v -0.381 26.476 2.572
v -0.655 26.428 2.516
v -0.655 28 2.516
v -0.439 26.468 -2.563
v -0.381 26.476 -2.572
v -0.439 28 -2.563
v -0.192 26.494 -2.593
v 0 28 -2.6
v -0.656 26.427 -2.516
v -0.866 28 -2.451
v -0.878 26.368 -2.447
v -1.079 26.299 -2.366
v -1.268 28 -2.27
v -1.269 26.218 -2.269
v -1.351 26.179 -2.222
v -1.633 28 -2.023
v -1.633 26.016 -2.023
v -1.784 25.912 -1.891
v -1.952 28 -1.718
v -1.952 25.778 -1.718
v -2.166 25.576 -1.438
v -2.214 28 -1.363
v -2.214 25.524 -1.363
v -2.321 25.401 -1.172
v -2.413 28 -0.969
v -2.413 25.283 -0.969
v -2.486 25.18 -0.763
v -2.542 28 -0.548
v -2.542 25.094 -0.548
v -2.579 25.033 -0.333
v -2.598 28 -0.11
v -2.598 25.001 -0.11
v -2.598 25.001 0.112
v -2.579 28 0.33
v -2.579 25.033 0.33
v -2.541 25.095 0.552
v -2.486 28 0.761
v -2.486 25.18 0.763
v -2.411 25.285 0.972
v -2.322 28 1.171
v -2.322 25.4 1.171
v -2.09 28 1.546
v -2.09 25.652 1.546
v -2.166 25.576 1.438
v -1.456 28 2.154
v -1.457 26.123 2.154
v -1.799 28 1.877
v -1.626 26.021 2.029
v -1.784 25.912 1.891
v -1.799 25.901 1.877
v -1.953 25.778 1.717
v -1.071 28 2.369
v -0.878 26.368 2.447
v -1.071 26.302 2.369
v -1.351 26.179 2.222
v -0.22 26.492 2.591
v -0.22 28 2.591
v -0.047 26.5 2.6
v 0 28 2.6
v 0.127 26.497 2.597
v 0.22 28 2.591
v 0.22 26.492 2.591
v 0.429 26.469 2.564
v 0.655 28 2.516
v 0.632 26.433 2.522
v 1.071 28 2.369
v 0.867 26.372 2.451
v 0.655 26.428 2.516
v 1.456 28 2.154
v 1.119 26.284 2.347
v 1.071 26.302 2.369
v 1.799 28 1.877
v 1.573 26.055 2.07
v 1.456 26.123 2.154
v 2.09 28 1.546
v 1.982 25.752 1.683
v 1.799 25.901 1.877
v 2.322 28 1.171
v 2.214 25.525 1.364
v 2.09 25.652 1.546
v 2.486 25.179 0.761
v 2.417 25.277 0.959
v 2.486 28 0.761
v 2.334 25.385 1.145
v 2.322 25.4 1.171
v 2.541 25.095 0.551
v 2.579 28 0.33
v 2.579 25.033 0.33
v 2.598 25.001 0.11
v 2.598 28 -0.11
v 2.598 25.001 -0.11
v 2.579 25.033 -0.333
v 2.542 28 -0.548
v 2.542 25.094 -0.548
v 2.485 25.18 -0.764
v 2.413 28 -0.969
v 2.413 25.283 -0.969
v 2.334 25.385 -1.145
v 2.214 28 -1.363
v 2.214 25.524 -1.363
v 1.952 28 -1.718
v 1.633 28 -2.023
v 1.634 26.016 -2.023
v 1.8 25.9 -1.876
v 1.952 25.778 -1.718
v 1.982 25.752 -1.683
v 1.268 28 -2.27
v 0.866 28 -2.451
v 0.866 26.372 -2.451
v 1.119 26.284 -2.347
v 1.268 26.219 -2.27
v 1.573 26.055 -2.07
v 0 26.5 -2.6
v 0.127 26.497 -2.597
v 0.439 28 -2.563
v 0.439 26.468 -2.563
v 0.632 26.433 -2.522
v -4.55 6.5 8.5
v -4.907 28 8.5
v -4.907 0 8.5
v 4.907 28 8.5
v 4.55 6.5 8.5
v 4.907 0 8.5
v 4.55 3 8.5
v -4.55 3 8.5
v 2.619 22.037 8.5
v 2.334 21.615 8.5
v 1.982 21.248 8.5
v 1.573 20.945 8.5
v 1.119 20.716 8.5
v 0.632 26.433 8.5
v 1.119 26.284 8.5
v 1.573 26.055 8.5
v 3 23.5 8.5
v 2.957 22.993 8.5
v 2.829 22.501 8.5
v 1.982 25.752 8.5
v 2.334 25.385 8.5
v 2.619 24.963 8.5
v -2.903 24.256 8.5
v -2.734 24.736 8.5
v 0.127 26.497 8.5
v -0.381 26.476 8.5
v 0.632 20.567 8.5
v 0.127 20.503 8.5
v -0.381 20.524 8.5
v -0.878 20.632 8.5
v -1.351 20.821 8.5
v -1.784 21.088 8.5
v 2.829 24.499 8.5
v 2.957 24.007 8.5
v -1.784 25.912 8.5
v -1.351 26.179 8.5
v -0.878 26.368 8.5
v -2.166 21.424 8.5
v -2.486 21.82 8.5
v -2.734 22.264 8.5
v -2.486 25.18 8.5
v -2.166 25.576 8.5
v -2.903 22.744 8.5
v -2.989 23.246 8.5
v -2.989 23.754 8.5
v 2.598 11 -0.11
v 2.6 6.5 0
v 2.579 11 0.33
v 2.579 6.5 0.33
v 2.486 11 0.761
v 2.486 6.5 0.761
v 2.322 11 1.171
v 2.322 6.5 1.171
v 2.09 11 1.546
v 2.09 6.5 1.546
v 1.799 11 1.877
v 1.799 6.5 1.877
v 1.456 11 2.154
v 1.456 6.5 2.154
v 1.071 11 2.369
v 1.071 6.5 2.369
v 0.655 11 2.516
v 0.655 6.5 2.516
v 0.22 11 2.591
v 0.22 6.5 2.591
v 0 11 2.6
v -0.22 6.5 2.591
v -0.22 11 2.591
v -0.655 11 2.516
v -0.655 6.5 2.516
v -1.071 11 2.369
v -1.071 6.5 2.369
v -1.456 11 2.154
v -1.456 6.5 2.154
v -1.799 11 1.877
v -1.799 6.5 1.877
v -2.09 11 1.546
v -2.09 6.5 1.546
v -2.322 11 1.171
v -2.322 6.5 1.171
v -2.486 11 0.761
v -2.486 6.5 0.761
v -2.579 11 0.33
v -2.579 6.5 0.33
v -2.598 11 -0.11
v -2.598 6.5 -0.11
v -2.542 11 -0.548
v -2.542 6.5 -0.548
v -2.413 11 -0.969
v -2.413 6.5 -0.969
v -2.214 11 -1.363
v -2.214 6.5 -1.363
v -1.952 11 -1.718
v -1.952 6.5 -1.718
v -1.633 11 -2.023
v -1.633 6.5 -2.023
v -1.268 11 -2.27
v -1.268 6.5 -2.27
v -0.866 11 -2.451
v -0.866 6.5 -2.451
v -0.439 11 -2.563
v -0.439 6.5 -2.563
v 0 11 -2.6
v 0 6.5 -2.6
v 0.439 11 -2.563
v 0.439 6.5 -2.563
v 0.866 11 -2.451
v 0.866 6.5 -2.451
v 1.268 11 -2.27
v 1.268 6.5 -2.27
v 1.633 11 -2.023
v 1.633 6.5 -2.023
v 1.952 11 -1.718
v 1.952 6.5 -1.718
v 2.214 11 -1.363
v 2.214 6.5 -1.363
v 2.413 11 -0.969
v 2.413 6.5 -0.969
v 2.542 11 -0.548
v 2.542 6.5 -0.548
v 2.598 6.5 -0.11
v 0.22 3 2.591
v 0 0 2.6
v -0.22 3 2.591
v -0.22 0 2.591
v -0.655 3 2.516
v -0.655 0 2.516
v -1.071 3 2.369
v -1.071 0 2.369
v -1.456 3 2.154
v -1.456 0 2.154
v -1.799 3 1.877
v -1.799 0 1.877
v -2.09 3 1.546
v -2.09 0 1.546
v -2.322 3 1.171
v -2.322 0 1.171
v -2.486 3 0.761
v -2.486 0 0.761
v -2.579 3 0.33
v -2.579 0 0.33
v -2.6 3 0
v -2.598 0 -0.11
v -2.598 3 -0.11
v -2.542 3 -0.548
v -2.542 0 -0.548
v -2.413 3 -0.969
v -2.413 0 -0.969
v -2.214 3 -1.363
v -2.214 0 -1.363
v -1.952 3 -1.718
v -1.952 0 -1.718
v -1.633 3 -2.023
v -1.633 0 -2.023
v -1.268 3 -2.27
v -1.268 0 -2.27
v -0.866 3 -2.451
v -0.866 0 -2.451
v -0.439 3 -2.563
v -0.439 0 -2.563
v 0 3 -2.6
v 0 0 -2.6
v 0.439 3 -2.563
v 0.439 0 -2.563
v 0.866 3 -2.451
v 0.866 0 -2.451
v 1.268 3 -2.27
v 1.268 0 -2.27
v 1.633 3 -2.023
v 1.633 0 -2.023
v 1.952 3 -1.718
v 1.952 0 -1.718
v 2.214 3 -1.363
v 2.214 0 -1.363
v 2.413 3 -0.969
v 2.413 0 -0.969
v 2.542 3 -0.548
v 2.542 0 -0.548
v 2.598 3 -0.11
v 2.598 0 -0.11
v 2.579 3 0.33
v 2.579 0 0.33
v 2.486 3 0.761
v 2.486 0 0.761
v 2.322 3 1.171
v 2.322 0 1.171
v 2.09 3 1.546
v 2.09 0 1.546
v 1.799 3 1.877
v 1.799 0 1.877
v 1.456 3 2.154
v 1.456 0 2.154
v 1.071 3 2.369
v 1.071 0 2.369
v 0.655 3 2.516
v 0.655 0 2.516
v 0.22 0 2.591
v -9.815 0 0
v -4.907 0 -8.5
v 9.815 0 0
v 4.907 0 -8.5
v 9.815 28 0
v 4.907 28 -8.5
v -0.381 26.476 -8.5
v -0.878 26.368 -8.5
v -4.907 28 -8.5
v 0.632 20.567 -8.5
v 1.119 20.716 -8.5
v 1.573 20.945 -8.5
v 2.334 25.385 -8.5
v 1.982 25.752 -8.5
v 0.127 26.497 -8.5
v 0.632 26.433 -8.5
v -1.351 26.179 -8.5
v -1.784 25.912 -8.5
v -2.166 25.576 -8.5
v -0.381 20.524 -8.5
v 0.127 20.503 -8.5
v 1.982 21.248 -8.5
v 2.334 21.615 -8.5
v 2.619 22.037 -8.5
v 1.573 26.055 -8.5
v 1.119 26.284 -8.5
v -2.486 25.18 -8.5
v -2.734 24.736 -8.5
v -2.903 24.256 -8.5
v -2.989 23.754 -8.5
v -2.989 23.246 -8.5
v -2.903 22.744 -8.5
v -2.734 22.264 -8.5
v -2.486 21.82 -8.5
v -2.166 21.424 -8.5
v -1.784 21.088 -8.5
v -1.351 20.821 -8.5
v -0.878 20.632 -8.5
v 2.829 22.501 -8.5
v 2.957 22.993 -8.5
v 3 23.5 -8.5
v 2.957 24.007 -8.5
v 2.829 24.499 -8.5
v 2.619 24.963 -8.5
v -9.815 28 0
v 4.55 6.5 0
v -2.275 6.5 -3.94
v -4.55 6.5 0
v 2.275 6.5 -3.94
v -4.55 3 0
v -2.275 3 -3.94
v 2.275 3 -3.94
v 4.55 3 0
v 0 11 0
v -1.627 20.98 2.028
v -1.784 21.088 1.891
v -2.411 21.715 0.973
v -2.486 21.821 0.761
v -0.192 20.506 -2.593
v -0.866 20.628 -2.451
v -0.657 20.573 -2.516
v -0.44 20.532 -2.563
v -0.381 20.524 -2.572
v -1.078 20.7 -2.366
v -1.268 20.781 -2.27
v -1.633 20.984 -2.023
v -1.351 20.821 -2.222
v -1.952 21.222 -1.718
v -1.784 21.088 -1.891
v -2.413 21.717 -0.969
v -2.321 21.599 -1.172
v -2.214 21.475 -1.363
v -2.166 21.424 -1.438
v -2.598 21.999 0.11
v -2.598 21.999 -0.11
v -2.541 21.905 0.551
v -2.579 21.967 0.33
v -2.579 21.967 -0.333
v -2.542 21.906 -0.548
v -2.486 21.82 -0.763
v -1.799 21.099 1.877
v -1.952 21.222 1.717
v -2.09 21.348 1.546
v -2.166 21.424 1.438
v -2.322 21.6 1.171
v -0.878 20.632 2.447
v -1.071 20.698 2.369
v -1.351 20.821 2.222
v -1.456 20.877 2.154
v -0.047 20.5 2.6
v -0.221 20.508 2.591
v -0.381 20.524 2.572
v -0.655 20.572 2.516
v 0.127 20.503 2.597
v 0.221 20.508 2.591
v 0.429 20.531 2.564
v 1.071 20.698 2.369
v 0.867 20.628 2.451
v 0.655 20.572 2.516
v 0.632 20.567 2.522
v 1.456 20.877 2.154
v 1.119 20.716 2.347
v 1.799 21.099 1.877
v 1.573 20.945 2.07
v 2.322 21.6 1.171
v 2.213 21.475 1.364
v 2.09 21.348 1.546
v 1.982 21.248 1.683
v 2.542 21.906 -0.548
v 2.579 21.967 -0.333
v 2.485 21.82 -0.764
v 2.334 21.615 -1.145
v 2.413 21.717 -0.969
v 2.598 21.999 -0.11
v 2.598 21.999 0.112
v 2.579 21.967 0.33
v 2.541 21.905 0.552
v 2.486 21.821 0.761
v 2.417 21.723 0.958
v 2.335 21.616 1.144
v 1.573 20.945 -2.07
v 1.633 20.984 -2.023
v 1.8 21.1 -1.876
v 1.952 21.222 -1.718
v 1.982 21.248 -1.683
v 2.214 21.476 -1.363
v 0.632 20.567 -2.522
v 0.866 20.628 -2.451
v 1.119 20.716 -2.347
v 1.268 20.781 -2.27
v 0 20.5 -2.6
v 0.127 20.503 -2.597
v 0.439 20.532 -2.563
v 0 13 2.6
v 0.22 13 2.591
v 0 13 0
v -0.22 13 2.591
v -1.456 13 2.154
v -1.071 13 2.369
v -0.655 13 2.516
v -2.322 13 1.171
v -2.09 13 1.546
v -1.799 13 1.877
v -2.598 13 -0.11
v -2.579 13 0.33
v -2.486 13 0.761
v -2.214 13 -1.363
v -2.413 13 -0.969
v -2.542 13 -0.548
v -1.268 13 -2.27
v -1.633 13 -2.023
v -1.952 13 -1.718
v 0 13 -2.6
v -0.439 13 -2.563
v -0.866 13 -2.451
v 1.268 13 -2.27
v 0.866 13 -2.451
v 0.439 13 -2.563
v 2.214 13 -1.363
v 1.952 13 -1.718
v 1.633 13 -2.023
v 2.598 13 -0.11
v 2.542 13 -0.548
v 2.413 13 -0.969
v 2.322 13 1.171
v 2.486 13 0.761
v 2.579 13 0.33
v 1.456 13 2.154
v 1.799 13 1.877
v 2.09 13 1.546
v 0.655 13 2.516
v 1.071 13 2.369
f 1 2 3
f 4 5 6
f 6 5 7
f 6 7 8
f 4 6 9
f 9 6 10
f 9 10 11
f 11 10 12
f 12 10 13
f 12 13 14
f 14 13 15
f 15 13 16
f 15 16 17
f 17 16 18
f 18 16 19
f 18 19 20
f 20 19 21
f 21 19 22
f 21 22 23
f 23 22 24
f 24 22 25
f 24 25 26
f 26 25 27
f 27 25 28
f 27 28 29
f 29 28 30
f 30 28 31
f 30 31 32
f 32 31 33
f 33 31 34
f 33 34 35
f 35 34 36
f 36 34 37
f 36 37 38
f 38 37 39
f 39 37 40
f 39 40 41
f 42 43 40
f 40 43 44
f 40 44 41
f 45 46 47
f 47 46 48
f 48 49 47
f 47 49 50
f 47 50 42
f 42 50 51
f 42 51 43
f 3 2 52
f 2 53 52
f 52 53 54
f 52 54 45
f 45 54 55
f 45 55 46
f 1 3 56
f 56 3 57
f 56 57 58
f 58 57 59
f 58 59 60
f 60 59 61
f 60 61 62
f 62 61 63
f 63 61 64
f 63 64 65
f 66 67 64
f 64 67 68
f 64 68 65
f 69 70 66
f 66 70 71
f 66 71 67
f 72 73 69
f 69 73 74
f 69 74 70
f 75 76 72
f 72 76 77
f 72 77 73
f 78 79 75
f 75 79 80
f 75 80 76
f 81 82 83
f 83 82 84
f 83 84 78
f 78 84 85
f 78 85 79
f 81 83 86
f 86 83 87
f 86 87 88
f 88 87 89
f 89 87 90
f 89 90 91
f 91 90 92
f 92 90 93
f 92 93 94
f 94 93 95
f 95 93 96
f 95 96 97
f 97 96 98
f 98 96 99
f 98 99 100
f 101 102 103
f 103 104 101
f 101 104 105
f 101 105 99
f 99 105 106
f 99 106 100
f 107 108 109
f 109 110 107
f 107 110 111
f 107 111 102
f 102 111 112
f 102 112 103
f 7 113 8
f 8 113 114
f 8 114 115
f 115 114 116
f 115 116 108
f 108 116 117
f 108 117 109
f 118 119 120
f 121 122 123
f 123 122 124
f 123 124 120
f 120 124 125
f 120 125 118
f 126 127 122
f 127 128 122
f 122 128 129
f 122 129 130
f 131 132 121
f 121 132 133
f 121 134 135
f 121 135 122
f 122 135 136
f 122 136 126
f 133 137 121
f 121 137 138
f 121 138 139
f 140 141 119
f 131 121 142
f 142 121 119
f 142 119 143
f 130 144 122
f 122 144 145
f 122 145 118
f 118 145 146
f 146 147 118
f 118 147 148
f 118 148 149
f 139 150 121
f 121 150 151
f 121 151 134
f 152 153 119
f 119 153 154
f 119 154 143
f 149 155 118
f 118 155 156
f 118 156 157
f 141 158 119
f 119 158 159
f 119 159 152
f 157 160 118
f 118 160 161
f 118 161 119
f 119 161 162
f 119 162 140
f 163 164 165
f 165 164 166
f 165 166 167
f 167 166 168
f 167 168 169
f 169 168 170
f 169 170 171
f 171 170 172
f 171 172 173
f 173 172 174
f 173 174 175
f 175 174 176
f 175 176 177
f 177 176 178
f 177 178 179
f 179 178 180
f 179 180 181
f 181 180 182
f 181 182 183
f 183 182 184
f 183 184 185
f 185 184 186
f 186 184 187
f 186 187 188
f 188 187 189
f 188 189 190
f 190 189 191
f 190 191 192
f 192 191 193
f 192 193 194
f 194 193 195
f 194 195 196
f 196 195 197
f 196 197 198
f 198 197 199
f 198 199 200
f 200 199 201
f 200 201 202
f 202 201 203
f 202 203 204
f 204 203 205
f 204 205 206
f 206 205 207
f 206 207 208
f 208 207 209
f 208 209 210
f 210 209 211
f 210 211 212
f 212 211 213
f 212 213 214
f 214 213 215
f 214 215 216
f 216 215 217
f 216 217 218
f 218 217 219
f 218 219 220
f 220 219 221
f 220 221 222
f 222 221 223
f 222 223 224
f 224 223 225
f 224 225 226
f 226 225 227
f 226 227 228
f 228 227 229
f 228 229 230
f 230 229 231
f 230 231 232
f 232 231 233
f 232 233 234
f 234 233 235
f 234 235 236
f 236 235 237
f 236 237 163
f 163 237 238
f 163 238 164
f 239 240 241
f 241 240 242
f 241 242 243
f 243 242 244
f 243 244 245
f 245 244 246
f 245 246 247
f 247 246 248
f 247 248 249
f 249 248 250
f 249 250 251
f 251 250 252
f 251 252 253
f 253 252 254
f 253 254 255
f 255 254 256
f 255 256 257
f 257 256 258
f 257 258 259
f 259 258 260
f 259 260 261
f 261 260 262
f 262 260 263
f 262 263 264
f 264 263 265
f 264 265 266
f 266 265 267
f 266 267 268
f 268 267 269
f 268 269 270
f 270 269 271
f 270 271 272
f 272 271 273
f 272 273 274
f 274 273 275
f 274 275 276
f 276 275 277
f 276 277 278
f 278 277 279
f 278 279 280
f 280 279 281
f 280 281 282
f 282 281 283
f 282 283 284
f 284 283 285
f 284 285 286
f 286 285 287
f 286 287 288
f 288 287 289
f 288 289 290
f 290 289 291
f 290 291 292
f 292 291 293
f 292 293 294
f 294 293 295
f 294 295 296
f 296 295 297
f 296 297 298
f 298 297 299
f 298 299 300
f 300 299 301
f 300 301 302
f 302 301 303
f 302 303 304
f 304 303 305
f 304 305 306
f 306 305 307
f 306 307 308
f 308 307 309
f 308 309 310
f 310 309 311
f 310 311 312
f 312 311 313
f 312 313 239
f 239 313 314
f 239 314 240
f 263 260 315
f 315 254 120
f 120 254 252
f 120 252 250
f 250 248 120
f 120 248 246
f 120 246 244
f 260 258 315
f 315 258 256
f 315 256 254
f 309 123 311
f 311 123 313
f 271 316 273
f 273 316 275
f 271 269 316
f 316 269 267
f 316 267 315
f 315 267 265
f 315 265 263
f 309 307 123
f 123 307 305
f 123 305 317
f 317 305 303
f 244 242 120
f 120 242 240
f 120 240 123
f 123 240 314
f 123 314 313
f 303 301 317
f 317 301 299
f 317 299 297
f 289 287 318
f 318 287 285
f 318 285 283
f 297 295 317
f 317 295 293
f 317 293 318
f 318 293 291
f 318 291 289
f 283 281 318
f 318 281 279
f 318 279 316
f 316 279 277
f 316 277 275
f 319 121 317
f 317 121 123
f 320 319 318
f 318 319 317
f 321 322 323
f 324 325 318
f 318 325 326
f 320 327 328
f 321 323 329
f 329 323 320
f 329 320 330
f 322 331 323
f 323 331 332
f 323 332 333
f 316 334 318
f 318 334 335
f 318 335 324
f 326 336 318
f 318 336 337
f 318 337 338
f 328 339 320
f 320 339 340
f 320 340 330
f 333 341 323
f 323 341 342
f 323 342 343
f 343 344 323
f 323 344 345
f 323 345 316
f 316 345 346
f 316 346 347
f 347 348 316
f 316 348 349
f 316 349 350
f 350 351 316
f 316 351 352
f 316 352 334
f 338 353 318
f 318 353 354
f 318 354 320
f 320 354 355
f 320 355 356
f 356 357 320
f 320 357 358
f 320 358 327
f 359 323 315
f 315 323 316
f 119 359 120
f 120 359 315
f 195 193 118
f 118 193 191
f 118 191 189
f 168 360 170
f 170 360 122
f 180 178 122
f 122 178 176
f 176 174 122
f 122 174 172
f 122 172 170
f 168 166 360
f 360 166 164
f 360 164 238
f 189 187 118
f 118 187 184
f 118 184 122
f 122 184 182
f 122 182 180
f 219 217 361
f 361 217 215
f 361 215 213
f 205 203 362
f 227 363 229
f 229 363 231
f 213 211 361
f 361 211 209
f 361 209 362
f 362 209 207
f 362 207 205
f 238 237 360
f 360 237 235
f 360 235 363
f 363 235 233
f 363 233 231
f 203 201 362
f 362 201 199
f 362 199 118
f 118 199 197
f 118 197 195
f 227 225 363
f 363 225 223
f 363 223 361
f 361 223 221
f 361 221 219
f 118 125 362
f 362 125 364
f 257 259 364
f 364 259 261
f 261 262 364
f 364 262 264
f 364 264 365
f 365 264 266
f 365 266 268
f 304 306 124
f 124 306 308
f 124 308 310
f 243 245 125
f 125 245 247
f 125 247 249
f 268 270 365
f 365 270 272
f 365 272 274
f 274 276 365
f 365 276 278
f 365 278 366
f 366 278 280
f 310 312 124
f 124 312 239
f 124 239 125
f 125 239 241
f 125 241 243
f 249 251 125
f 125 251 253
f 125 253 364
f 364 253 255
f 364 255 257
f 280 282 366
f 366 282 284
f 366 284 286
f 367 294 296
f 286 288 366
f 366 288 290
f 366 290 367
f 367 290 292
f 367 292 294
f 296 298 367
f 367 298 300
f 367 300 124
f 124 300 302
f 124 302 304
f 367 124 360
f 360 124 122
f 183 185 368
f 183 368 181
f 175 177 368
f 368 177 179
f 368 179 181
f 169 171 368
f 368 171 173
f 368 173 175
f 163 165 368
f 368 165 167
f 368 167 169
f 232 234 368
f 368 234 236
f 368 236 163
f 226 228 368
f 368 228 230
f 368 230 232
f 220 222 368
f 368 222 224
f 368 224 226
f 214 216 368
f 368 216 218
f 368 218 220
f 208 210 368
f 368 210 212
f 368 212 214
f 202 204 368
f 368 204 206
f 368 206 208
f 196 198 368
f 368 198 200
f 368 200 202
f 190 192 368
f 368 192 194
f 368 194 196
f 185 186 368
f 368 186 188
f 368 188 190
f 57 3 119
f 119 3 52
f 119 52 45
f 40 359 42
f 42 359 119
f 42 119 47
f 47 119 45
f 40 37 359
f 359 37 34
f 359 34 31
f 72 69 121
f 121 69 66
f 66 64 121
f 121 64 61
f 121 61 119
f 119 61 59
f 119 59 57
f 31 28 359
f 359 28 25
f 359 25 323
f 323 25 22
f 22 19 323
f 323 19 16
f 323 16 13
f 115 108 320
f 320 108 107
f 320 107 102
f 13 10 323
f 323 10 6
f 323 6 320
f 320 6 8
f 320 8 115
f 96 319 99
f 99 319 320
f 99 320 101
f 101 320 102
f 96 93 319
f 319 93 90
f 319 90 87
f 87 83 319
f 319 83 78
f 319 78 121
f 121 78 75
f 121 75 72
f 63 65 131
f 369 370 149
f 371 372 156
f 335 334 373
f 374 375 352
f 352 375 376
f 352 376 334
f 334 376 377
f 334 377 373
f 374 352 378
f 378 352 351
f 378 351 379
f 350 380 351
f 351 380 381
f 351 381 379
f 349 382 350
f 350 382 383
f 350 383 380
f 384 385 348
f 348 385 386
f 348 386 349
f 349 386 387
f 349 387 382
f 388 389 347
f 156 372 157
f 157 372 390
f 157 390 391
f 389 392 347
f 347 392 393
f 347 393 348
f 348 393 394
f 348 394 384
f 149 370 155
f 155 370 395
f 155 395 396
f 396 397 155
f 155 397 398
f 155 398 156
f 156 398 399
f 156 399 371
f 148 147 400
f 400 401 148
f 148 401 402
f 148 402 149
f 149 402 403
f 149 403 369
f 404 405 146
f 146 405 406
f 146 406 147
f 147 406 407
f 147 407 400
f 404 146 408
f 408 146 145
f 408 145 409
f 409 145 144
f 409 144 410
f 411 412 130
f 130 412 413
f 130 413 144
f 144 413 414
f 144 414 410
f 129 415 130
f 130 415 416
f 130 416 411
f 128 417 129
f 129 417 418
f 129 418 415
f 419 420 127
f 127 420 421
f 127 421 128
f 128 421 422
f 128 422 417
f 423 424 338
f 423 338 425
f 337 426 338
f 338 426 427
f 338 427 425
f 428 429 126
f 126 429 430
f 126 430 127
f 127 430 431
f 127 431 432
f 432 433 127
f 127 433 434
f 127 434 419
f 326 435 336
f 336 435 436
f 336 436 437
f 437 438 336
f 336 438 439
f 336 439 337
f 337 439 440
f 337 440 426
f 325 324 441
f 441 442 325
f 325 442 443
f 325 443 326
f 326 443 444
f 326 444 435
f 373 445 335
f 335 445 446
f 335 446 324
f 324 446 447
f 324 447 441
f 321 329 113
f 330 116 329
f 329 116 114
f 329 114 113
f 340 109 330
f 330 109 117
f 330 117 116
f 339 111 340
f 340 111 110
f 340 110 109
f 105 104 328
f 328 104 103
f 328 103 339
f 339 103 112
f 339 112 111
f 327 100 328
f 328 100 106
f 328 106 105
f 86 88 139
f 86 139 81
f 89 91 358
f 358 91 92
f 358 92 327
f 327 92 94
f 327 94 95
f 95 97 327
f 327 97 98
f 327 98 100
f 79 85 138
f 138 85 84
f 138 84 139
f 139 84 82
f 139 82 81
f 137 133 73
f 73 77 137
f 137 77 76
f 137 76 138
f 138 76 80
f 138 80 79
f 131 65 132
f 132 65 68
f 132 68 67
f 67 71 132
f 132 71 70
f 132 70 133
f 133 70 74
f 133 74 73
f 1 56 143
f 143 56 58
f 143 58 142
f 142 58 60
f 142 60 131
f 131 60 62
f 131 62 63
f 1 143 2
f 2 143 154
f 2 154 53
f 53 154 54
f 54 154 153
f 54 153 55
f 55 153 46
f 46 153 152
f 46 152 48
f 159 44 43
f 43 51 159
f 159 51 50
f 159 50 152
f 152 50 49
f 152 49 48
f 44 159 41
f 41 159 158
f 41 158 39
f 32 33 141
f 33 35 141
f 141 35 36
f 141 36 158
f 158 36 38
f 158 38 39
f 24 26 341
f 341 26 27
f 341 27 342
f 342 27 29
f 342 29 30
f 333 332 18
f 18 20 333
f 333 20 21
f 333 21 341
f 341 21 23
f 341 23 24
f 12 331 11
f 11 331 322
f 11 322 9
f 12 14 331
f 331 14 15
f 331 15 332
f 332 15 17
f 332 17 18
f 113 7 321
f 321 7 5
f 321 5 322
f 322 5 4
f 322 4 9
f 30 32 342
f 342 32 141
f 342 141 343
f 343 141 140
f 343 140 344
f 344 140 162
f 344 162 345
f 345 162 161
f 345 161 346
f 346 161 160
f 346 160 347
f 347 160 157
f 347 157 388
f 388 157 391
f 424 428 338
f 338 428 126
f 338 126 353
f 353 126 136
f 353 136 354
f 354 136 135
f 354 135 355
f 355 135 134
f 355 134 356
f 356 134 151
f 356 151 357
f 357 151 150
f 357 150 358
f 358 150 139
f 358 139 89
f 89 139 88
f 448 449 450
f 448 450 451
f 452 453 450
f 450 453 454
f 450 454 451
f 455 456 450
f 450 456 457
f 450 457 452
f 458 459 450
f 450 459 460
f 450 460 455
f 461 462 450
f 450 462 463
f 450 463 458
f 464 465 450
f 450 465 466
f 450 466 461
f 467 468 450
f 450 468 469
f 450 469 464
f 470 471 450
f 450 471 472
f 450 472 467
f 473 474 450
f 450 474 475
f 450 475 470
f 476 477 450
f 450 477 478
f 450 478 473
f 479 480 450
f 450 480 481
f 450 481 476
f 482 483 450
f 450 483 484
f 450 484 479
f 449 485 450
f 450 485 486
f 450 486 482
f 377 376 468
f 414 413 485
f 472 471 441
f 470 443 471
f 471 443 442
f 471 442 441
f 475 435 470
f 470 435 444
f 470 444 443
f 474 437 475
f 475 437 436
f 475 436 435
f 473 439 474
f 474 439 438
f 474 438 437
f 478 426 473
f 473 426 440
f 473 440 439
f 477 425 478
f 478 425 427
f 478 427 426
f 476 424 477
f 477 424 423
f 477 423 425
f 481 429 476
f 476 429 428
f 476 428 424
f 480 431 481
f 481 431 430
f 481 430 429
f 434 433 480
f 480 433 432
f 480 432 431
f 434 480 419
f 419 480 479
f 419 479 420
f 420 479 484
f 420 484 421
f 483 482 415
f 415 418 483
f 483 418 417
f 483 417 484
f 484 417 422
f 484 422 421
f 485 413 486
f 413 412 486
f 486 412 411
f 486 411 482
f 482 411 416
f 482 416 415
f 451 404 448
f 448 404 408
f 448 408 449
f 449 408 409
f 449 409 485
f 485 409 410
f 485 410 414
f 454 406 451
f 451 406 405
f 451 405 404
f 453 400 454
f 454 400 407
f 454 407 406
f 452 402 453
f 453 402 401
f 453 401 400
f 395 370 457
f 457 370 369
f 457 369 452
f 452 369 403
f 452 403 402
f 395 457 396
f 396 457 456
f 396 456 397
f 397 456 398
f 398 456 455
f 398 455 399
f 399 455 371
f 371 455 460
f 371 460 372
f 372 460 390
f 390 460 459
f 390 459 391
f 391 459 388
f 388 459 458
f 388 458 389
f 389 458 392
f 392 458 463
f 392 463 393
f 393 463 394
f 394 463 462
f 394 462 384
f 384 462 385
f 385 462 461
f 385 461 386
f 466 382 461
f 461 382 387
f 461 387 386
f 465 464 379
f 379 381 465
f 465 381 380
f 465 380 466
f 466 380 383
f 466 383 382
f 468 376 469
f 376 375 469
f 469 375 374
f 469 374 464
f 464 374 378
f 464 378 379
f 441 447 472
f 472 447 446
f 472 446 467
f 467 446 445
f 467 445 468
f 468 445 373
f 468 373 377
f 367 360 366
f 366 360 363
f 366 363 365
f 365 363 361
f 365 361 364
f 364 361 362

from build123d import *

# Parameters (mm, degrees)
SKETCH2_R           = 2.6
CORE_DEPTH          = 11
SKETCH5_W           = 9.1
SKETCH5_H           = 3.5
HEX_NUT_DEPTH       = 14.2
BOLT_GUARD_DEPTH    = 2
SKETCH7_R           = 2.6
D_SHAFT_DEPTH       = 15
SKETCH8_R           = 3
SET_SCREW_DEPTH     = 35.195516275
BOSS_EXTRUDE1_REACH = 27.116


with BuildPart() as part:
    # Sketch2 → core (new body)
    with BuildSketch(Plane(origin=(0, 0, 0), x_dir=(1, 0, 0), z_dir=(0, 1, 0))):
        Polygon((9.814954576, 0), (4.907477288, 8.5), (-4.907477288, 8.5), (-9.814954576, 0), (-4.907477288, -8.5), (4.907477288, -8.5), align=None)
        with Locations(Location((0, 0, 0), (0, 0, 270))):
            Circle(SKETCH2_R, mode=Mode.SUBTRACT)
    extrude(amount=CORE_DEPTH)

    # Sketch5 → hex-nut (cut)
    with BuildSketch(Plane.XY.offset(8.5)):
        with Locations((0, 4.75)):
            Rectangle(SKETCH5_W, SKETCH5_H)
    extrude(amount=-HEX_NUT_DEPTH, mode=Mode.SUBTRACT)

    # Sketch4 → bolt-guard (add)
    with BuildSketch(Plane(origin=(0, 11, 0), x_dir=(1, 0, 0), z_dir=(0, 1, 0))):
        Polygon((9.814954576, 0), (4.907477288, 8.5), (-4.907477288, 8.5), (-9.814954576, 0), (-4.907477288, -8.5), (4.907477288, -8.5), align=None)
    extrude(amount=BOLT_GUARD_DEPTH)

    # Sketch7 → d-shaft (add)
    with BuildSketch(Plane(origin=(0, 13, 0), x_dir=(1, 0, 0), z_dir=(0, 1, 0))):
        Polygon((9.814954576, 0), (4.907477288, 8.5), (-4.907477288, 8.5), (-9.814954576, 0), (-4.907477288, -8.5), (4.907477288, -8.5), align=None)
        Circle(SKETCH7_R, mode=Mode.SUBTRACT)
    extrude(amount=D_SHAFT_DEPTH)

    # Sketch8 → set-screw (cut, through all)
    with BuildSketch(Plane.XY.offset(8.5)):
        with Locations((0, 23.5)):
            Circle(SKETCH8_R)
    extrude(amount=-SET_SCREW_DEPTH, mode=Mode.SUBTRACT)

    # Sketch9 → Boss-Extrude1 (add, up to next)
    with BuildSketch(Plane.XZ.offset(-6.5), mode=Mode.PRIVATE) as boss_extrude1_sk1:
        Polygon((4.55, -5.7), (4.55, 0), (2.275, -3.940415587), (-2.275, -3.940415587), (-4.55, 0), (-4.55, -5.7), align=None)
    boss_extrude1_tool1 = extrude(boss_extrude1_sk1.sketch, amount=BOSS_EXTRUDE1_REACH, mode=Mode.PRIVATE) - part.part
    add(boss_extrude1_tool1.solids().sort_by_distance((0, 6.5, -4.033017))[0])


solid = part.part
